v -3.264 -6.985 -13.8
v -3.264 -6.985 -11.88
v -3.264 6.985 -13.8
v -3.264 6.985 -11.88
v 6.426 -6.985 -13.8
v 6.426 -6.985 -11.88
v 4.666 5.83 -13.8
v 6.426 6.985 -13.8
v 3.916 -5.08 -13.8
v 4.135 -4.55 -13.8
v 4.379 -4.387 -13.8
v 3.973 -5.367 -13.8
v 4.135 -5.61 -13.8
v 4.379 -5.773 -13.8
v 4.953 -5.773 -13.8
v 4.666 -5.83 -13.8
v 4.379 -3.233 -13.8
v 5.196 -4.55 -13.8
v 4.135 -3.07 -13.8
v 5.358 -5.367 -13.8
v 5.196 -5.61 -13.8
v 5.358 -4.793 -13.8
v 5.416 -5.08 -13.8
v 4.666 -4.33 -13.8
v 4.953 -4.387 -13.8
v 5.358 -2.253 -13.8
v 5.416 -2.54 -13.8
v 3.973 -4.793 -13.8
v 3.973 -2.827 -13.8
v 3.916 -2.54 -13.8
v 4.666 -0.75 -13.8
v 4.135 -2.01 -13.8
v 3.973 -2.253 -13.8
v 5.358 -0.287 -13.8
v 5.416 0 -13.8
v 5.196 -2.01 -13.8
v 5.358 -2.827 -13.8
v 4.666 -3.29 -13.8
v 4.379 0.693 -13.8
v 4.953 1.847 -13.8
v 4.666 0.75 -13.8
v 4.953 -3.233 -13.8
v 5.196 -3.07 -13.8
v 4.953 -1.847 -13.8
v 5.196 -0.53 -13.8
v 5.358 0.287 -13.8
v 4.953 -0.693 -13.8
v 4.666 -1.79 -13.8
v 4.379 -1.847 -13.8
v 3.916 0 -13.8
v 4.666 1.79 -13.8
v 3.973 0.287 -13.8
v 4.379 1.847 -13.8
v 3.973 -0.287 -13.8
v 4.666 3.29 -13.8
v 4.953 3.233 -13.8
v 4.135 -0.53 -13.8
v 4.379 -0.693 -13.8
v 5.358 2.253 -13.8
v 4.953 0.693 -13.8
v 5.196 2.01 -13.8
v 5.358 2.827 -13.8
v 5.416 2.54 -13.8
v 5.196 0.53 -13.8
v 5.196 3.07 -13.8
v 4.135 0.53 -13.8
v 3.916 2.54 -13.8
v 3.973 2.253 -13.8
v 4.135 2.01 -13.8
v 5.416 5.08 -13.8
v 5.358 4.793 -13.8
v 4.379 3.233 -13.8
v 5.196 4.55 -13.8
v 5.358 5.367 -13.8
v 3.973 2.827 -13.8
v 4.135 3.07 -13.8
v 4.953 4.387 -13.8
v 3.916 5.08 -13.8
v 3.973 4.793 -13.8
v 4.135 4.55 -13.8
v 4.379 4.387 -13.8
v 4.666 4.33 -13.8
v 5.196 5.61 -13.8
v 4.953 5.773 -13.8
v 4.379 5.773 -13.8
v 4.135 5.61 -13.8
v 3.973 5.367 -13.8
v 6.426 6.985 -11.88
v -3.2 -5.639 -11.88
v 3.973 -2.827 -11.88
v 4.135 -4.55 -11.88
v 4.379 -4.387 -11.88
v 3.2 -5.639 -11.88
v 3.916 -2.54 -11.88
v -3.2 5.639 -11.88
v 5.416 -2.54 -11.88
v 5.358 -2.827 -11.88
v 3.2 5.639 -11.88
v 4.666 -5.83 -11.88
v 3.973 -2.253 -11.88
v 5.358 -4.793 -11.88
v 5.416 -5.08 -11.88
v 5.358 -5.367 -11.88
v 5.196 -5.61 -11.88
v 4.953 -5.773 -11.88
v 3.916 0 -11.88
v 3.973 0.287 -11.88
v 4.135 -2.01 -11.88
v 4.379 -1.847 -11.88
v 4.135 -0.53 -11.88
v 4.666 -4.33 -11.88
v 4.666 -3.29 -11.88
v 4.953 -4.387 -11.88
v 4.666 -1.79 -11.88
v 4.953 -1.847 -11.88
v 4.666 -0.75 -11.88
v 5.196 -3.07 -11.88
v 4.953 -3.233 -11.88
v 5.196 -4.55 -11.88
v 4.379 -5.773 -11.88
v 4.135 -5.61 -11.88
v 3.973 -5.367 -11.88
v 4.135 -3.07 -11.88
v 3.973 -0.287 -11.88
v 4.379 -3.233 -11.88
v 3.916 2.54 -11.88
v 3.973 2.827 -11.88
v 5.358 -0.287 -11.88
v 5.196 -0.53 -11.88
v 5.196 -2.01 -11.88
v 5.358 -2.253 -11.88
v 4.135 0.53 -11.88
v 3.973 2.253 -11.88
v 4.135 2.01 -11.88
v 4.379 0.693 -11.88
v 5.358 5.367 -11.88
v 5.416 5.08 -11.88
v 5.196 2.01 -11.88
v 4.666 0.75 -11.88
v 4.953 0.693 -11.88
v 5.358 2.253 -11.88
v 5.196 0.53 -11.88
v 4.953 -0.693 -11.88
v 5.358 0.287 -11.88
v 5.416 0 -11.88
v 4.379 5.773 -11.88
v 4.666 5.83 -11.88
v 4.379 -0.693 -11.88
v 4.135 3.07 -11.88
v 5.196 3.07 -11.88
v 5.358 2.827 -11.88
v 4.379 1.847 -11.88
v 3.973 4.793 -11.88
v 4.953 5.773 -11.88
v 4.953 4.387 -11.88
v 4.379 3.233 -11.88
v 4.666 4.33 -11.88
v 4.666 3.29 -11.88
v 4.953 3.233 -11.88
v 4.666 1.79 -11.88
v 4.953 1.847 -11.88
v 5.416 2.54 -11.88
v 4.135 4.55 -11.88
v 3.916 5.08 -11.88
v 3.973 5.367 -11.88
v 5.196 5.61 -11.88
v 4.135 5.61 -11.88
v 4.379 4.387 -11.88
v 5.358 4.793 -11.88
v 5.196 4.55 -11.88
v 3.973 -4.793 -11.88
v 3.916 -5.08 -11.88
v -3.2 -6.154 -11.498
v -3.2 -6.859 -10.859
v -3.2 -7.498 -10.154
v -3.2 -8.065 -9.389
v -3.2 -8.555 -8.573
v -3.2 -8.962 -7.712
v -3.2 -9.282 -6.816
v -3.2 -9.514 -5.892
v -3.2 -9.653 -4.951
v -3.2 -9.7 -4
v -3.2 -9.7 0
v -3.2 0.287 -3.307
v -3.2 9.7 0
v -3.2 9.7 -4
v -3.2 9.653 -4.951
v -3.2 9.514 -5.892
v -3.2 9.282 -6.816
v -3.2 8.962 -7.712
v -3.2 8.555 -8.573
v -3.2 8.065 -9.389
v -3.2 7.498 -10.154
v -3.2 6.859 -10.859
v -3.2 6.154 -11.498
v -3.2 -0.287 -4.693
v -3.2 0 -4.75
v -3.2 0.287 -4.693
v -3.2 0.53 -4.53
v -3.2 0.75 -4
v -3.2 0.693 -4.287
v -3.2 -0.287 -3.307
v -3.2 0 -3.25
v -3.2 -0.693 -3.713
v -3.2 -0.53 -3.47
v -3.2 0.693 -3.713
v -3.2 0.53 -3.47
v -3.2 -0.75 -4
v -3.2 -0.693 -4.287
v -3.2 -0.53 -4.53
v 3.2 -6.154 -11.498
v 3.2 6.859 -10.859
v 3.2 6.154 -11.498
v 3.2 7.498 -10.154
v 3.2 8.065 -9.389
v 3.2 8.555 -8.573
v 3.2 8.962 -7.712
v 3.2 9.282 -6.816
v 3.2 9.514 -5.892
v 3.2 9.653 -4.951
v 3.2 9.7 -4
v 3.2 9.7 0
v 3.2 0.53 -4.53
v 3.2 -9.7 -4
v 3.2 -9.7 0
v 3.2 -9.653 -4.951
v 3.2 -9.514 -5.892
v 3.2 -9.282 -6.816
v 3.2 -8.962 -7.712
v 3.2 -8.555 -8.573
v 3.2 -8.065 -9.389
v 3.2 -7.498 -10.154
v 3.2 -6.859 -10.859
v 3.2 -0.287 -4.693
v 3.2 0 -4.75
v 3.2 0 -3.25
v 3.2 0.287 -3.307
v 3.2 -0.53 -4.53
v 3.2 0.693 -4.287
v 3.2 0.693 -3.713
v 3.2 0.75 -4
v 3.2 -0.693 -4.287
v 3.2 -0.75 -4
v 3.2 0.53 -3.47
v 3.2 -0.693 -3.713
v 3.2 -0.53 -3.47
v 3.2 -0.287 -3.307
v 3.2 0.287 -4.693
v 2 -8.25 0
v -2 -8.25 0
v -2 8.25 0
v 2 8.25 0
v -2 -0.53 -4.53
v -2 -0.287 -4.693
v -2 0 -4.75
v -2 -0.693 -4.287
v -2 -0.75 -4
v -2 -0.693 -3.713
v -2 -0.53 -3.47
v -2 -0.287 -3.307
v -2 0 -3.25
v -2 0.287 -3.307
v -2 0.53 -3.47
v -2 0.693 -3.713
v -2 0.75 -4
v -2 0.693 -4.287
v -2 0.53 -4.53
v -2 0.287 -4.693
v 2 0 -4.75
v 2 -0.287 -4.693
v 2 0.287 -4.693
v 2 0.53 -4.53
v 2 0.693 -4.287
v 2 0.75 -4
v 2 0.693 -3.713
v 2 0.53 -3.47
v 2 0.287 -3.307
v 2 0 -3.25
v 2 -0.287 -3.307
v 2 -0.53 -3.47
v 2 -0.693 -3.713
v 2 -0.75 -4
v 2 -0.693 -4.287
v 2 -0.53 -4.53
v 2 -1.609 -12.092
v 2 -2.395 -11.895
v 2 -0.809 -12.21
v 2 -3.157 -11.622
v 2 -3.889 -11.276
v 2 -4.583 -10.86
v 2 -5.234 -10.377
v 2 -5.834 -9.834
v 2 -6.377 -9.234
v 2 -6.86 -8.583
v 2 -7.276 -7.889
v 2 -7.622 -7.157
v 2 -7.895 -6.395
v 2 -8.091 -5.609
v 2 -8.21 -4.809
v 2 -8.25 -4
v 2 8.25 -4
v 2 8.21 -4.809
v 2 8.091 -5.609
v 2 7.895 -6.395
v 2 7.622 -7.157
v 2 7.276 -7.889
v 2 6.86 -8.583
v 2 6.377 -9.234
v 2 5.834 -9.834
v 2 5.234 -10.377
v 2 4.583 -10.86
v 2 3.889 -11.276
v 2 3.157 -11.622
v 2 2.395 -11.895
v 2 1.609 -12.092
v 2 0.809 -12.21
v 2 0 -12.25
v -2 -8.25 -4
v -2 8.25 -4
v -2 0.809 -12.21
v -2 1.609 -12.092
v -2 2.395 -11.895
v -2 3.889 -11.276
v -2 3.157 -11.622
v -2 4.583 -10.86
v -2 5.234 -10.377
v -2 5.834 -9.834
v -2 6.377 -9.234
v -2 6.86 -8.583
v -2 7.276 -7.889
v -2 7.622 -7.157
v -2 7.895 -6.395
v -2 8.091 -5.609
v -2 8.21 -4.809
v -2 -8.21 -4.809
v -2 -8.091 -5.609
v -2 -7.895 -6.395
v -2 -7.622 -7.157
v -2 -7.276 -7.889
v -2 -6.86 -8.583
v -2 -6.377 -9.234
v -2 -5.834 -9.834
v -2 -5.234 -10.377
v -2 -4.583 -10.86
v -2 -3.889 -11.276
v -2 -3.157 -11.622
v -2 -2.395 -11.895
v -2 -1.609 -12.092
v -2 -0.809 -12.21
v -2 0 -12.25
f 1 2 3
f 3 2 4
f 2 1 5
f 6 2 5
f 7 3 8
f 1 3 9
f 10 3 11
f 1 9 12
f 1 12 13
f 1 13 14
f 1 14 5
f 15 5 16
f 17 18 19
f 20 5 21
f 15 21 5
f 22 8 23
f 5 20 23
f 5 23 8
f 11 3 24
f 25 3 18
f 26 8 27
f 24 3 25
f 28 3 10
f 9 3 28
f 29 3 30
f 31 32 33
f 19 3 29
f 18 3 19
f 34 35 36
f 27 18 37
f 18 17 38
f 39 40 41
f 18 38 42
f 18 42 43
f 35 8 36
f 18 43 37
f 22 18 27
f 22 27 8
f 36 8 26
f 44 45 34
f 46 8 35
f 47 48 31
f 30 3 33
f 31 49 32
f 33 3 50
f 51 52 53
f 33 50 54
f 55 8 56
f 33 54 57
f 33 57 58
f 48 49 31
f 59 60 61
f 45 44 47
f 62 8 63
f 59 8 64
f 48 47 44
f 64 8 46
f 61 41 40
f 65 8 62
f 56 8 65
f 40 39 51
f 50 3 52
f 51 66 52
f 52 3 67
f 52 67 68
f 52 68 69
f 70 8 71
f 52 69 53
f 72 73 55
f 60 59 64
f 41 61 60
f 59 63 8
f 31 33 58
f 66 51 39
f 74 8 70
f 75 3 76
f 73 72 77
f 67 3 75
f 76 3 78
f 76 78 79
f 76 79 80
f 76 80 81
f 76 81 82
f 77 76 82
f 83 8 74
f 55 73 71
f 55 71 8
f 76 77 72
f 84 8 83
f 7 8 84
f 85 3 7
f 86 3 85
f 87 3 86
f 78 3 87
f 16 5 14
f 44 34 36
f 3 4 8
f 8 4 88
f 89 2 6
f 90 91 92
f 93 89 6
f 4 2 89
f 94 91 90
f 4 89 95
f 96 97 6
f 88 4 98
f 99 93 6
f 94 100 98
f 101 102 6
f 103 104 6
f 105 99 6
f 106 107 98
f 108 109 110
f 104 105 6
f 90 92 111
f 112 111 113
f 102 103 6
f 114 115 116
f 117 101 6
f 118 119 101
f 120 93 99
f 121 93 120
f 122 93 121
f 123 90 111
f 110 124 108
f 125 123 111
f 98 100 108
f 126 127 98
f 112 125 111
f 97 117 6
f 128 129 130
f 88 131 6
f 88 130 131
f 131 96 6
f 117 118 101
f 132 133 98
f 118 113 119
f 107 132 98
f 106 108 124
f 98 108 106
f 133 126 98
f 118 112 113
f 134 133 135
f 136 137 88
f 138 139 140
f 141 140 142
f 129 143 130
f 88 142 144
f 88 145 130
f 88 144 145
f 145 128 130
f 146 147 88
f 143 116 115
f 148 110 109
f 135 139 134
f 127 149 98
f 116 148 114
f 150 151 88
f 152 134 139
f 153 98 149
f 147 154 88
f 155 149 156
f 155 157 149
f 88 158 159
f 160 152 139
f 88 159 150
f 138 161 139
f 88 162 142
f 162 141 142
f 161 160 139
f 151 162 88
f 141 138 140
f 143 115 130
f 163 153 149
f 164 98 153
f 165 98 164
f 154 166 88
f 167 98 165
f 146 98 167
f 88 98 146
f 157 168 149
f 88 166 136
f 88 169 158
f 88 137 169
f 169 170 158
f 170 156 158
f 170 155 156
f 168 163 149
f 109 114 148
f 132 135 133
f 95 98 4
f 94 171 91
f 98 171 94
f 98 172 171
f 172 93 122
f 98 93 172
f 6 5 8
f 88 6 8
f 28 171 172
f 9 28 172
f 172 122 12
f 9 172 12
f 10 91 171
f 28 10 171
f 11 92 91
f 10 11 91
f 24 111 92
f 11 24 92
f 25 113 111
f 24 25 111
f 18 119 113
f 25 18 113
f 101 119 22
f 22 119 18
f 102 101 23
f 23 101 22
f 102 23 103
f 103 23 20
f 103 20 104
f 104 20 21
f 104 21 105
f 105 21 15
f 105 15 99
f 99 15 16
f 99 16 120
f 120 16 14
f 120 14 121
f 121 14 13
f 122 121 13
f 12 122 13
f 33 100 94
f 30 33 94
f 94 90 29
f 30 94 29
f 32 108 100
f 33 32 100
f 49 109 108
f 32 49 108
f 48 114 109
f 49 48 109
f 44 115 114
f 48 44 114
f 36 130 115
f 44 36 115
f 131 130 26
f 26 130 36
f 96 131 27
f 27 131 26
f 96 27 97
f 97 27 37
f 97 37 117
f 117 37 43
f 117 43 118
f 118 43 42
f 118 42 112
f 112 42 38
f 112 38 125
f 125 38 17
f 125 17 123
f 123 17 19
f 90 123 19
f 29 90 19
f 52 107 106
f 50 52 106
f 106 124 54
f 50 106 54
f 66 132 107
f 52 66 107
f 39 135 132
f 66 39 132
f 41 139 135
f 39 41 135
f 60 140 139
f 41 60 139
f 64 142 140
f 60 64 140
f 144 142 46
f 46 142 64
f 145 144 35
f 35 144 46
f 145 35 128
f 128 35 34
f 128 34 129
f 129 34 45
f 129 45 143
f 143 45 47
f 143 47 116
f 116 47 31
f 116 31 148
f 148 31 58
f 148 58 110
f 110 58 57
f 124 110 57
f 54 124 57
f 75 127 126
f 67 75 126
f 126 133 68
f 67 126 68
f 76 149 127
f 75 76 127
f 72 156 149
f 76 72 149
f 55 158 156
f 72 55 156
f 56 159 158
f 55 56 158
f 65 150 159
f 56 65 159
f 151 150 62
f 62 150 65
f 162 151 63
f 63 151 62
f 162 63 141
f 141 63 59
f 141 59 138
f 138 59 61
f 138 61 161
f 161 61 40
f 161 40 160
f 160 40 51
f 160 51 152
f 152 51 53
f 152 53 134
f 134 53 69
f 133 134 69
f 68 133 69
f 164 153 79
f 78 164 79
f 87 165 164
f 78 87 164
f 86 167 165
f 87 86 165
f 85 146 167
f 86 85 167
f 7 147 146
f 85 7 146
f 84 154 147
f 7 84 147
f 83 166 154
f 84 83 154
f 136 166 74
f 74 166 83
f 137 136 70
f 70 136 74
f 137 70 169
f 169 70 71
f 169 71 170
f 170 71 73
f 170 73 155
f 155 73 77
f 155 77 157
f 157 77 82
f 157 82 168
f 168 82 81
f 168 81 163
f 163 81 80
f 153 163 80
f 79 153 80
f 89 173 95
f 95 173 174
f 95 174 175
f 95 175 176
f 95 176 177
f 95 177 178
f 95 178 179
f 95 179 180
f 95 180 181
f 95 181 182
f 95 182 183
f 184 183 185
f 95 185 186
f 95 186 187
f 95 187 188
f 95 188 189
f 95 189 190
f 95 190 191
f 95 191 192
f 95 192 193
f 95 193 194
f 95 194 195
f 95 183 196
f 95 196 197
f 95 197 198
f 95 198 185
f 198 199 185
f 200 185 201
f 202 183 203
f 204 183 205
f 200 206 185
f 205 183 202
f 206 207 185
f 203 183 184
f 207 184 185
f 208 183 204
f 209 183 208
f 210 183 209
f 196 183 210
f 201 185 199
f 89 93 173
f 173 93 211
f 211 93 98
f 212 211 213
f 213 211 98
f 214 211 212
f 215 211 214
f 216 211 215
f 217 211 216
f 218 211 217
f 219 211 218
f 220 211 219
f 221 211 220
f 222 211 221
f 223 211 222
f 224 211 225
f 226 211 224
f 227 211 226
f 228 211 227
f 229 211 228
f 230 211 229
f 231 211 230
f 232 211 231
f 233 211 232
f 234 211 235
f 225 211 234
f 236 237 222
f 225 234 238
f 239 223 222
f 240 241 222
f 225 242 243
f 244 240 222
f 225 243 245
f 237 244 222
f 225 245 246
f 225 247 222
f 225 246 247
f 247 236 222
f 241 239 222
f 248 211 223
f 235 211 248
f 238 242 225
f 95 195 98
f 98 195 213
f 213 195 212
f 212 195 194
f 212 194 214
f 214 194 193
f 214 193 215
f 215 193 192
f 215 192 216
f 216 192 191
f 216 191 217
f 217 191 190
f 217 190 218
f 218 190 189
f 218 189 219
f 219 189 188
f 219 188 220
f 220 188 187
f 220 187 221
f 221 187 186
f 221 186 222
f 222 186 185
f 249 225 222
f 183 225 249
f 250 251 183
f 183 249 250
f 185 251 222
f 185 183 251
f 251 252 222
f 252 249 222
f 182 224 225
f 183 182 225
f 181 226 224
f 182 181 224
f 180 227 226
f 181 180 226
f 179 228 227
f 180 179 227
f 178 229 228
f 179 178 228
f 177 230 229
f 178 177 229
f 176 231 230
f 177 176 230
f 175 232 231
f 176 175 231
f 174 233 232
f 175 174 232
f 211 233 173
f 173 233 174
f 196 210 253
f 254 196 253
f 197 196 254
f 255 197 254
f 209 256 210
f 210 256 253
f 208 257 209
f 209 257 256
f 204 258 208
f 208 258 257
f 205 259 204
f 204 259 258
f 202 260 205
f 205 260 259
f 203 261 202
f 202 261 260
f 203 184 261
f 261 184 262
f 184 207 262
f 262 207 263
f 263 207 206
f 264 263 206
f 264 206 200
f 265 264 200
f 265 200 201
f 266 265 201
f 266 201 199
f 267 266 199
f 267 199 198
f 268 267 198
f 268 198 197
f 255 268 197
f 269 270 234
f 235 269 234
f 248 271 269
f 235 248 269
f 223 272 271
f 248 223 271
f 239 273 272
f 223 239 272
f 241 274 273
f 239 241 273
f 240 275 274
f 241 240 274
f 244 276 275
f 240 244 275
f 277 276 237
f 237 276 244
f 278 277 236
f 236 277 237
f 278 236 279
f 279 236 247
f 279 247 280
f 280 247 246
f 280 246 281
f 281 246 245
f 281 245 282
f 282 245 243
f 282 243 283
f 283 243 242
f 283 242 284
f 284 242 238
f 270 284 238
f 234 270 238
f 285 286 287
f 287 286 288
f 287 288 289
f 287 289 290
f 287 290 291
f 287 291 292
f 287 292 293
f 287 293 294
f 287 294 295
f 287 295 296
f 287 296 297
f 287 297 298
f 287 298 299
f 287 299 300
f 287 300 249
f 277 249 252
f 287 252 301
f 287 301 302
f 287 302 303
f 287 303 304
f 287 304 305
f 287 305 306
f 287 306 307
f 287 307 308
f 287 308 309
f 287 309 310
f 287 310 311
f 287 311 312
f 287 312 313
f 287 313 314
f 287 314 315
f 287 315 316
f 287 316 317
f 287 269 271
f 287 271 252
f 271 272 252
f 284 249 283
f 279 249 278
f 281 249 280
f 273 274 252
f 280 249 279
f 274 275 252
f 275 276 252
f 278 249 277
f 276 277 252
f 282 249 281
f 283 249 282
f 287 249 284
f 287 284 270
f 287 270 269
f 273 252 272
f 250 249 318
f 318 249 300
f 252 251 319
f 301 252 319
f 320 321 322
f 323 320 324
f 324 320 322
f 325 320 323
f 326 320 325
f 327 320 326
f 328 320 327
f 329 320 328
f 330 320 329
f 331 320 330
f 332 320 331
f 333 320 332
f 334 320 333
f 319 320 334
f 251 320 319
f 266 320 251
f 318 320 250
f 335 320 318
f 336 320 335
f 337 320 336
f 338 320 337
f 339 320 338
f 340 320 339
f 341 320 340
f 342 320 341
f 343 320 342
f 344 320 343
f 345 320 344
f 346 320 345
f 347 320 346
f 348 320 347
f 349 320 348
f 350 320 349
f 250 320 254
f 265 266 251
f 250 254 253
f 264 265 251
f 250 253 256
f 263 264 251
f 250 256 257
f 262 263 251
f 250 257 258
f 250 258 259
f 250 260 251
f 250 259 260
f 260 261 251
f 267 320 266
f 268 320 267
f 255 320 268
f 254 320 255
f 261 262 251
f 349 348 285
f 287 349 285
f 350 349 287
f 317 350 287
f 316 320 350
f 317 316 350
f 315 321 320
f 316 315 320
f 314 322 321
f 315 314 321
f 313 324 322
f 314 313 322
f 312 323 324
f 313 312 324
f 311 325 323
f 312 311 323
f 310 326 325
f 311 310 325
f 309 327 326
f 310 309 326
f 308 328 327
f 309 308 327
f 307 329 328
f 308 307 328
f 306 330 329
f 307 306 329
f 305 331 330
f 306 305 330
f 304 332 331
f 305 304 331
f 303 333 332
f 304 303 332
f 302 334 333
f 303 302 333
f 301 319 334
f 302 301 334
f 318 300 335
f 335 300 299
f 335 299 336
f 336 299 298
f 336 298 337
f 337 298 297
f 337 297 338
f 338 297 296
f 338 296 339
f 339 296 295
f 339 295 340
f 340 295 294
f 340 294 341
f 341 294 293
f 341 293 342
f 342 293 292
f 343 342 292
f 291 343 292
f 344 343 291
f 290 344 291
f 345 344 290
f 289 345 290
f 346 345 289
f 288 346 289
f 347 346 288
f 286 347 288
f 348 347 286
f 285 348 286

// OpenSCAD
/*Battery dimensions in mm
CR1225 cell holder: 
 diameter=12mm 
 height=2.5mm 
 tolerance=0.5mm 
 wall thickness=2mm 

CR2032 cell holder: 
 diameter=20mm 
 height=3.2mm 

CR1632 cell holder: 
 diameter=16mm 
 height=3.2mm 

*/

battery_diameter	= 16.0;	// Diameter of battery
battery_height = 3.5;	// Thickness of battery
tolerance = 0.5;	// Make things a little looser
wall_thickness = 1.2;	// Wall thickness
wire_diameter = 1.5;	// Thickness of wire openings
number_of_cells = 1;		// How many cells will be stacked
pitch = 1.27; // 0.1" pitch = 2.54mm / 2 = 1.27
// For a base on both sides:
// base_width = pitch*9;
// base_offset = 0.25;
base_width = pitch*7+0.8;
base_length = pitch*11; // pitch*17 for a wide mounting base
base_offset = -0.8;

extra_length	= -battery_diameter/2+4;	// Extends the opening to shroud the battery

rotate([0,-90,0]){ //[0,-90,0]
  // Move to propper hieght and orientation
  translate([-battery_diameter/2-extra_length,0,-(battery_height*number_of_cells)+(wall_thickness/4)]){
    difference(){
      union(){
        difference(){
          union(){
            // Main block
            cylinder(r=(battery_diameter/2)+tolerance+wall_thickness, h=battery_height*number_of_cells+(tolerance)+(2*wall_thickness),$fn=64);
           // Base
            translate([-battery_diameter/2-wall_thickness*1.5, -base_length/2, base_width/1.334+base_offset])
              rotate([0,90,0])
                cube([base_width,base_length,wall_thickness*1.6]);
          }
          // Battery shape
          translate([0,0,wall_thickness])
            cylinder(r=(battery_diameter/2)+(tolerance/2), h=battery_height*number_of_cells+tolerance,$fn=64);
          // Square opening 
          translate([0,-((battery_diameter/2)+2+tolerance),0])
            cube([battery_diameter+10,battery_diameter*number_of_cells+5,battery_height*number_of_cells+5]);
        }
        difference(){
          // Square extension
          translate([0,-((battery_diameter/2)+wall_thickness+tolerance),0])
            cube([battery_diameter/2+extra_length,battery_diameter+(2*wall_thickness)+(2*tolerance),battery_height*number_of_cells+(2*wall_thickness)+tolerance]);
          // Square hole in end
          translate([0,-((battery_diameter/2))-(tolerance/2),wall_thickness])
            cube([battery_diameter+tolerance,battery_diameter+tolerance,battery_height*number_of_cells+tolerance]);
        }
      }
      // Side wire holes
      translate([0,0,-1])
        cylinder(r=wire_diameter/2, h=battery_height*number_of_cells+tolerance+10,$fn=16);

      // Base wire holes
      // sides
      for(y=[-4*pitch,-2*pitch,0,2*pitch,4*pitch]){
        translate([-battery_diameter/2-wall_thickness*2, y, wall_thickness+(battery_height*number_of_cells/1.8)-pitch*3+base_offset])
          rotate([0,90,0])
            cylinder(r=wire_diameter/2,h=wall_thickness*4,$fn=16);
        if(base_width>8*pitch)
          translate([-battery_diameter/2-wall_thickness*2, y, wall_thickness+(battery_height*number_of_cells/1.8)+pitch*3+base_offset])
            rotate([0,90,0])
              cylinder(r=wire_diameter/2,h=wall_thickness*4,$fn=16);
      }

      // end holes
      if(base_length>12*pitch){
        translate([-battery_diameter/2-wall_thickness*3,pitch*7,wall_thickness+(battery_height*number_of_cells/2)+base_offset])
          rotate([0,90,0])
            cylinder(r=wire_diameter/2,h=wall_thickness*2+1,$fn=16);

        translate([-battery_diameter/2-wall_thickness*3,-pitch*7,wall_thickness+(battery_height*number_of_cells/2)+base_offset])
          rotate([0,90,0])
            cylinder(r=wire_diameter/2,h=wall_thickness*2+1,$fn=16);
      }
    }
  }
}
